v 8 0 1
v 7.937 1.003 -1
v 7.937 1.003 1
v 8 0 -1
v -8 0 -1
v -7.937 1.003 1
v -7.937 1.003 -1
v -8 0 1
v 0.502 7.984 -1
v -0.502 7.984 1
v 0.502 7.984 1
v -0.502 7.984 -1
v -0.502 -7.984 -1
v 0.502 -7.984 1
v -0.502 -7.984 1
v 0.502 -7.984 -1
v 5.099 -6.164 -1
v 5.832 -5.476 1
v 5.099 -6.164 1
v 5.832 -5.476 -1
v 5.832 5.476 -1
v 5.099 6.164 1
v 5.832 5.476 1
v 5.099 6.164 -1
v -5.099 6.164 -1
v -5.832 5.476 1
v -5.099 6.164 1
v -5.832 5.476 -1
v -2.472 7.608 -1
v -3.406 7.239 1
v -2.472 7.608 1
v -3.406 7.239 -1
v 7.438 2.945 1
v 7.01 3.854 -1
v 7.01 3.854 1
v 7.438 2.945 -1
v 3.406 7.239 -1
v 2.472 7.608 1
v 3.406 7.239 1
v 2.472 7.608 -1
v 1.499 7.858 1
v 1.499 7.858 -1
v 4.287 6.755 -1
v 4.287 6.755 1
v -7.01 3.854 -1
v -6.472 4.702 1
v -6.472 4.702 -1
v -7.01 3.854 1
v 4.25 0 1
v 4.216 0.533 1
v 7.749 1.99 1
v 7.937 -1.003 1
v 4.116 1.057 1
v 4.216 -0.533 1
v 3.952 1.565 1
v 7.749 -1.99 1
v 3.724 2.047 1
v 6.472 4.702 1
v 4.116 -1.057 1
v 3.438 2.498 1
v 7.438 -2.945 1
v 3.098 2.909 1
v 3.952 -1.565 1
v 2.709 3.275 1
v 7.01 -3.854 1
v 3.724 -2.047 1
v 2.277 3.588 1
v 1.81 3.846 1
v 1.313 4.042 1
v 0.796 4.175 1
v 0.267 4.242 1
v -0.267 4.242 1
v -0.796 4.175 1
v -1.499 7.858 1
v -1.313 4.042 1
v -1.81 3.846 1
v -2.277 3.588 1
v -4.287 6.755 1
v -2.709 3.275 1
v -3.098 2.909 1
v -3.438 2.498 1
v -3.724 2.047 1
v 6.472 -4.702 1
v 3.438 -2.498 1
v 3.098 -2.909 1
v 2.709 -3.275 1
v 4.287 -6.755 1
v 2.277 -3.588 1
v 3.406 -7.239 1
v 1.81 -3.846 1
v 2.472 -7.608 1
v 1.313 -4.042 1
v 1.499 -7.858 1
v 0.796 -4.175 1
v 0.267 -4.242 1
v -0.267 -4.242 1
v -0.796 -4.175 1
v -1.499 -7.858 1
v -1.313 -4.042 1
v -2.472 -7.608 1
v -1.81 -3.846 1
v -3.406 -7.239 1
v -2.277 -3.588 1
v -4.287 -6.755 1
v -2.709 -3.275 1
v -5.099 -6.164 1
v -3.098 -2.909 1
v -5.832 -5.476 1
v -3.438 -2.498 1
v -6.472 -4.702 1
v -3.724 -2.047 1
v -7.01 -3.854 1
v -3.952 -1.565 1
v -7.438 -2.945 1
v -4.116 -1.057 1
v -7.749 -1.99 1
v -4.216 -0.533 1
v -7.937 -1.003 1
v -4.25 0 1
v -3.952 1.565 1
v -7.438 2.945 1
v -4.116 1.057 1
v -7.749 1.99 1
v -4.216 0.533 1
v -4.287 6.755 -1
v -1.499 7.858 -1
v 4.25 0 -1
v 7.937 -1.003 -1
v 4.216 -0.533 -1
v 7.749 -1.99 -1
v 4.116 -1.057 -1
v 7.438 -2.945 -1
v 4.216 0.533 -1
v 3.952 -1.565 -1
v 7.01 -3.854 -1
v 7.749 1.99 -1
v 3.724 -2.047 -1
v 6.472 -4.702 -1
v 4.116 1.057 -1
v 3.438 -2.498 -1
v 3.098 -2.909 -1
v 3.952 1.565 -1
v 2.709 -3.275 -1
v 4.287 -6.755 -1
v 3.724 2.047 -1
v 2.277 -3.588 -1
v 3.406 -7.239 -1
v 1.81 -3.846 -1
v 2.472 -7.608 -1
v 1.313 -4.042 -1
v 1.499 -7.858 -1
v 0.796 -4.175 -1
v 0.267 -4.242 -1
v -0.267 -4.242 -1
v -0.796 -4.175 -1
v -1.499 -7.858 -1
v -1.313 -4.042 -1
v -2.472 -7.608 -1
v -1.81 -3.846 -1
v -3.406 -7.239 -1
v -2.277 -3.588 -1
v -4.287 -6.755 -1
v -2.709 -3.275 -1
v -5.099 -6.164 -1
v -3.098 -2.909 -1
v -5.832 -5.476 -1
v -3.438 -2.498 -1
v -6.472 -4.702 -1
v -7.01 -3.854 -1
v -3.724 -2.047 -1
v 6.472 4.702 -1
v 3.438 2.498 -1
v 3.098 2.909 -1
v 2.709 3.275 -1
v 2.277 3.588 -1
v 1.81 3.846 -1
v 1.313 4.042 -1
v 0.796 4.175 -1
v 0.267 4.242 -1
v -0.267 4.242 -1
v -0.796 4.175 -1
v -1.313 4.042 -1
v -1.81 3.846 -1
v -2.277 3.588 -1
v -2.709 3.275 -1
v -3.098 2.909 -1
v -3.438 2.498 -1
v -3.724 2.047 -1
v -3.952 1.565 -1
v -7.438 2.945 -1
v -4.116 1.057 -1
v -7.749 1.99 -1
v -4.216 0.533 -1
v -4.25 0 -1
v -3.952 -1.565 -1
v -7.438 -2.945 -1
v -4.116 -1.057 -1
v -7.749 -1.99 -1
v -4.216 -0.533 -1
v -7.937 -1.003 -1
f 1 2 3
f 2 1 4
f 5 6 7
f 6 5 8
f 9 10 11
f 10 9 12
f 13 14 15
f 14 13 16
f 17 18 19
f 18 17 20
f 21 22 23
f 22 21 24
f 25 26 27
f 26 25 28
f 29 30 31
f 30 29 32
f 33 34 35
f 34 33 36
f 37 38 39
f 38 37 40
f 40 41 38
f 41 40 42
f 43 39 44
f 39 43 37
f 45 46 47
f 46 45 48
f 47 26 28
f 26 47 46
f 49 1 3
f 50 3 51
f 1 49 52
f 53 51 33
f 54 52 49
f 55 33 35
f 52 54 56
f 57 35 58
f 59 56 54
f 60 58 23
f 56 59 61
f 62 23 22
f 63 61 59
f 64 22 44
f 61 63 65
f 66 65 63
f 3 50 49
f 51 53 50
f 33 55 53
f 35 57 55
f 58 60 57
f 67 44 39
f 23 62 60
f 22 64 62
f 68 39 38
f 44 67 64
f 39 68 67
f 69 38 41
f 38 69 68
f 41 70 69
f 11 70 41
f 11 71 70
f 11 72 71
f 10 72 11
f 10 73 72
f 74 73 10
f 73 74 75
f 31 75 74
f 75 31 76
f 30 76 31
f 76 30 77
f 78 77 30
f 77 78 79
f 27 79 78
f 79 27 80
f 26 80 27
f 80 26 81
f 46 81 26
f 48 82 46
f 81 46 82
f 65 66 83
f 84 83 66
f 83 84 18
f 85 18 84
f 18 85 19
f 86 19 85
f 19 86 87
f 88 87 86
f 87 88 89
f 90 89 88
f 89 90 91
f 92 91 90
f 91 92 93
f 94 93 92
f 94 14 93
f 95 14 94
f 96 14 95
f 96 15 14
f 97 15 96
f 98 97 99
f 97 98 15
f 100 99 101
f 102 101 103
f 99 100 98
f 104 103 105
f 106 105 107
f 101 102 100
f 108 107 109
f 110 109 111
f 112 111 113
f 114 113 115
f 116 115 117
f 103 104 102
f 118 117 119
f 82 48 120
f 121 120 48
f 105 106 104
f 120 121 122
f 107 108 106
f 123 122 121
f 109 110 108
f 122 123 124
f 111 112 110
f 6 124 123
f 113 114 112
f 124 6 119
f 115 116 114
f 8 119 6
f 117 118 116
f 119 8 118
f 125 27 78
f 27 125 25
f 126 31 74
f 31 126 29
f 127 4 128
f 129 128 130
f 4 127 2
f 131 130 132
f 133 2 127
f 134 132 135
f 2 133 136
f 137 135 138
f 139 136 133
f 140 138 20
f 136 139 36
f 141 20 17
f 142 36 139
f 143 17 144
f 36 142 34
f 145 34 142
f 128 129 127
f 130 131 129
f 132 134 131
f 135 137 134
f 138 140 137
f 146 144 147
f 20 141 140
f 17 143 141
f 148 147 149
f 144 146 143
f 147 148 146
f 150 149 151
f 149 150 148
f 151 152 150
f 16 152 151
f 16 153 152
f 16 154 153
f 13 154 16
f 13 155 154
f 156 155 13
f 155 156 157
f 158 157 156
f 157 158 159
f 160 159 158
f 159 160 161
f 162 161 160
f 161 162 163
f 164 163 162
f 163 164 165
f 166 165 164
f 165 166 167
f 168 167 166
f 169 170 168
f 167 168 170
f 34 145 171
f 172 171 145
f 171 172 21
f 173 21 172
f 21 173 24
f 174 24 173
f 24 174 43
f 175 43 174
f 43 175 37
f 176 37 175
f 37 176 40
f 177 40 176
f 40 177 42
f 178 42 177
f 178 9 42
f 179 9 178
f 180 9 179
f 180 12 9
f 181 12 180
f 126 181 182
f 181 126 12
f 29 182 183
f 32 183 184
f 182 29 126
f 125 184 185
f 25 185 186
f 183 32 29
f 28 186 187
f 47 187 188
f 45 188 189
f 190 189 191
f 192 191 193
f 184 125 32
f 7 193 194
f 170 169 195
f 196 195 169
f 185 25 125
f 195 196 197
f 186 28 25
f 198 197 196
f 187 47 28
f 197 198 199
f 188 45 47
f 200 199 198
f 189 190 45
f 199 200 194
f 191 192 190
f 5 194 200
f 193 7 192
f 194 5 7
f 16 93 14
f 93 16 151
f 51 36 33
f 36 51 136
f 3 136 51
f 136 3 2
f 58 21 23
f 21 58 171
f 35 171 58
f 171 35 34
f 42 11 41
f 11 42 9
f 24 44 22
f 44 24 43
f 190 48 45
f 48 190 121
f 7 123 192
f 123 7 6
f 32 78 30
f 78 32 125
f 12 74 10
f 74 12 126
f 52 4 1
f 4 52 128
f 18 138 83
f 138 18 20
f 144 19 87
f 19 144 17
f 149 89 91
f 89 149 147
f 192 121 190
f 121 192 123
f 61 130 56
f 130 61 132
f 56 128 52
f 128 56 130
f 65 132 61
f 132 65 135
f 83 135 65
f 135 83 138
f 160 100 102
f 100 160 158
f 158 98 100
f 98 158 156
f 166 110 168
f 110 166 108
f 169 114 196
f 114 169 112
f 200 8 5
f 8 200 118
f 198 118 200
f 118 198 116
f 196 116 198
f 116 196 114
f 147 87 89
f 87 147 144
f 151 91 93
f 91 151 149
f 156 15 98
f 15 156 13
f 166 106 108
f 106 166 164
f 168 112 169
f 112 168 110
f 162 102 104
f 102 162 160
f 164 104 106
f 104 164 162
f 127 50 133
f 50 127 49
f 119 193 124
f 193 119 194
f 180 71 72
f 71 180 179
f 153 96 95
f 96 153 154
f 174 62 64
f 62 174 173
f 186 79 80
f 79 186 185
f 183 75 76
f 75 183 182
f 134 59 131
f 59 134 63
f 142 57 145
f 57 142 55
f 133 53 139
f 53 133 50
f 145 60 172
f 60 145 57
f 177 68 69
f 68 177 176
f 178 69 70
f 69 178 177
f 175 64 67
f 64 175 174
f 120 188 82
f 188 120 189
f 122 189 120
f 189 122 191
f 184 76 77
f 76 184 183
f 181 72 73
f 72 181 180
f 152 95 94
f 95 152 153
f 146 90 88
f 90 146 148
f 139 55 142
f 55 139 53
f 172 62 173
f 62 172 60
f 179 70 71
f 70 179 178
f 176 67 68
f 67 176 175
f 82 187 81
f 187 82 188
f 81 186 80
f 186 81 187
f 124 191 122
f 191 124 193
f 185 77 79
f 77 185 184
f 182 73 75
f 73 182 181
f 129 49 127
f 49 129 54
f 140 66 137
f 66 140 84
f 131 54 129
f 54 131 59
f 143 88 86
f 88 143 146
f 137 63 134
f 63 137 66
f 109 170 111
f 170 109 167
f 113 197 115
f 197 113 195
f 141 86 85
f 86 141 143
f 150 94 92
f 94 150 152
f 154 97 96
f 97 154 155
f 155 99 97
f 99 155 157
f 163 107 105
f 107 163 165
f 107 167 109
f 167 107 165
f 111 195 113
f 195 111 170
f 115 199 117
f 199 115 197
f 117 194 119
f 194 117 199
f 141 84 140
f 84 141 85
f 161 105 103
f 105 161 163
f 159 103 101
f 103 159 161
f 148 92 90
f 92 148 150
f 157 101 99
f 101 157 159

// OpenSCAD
$fn = 50;


difference() {
	union() {
		translate(v = [0, 0, -1.0000000000]) {
			cylinder(h = 2, r = 8.0000000000);
		}
	}
	union() {
		translate(v = [0, 0, -100.0000000000]) {
			cylinder(h = 200, r = 4.2500000000);
		}
	}
}
